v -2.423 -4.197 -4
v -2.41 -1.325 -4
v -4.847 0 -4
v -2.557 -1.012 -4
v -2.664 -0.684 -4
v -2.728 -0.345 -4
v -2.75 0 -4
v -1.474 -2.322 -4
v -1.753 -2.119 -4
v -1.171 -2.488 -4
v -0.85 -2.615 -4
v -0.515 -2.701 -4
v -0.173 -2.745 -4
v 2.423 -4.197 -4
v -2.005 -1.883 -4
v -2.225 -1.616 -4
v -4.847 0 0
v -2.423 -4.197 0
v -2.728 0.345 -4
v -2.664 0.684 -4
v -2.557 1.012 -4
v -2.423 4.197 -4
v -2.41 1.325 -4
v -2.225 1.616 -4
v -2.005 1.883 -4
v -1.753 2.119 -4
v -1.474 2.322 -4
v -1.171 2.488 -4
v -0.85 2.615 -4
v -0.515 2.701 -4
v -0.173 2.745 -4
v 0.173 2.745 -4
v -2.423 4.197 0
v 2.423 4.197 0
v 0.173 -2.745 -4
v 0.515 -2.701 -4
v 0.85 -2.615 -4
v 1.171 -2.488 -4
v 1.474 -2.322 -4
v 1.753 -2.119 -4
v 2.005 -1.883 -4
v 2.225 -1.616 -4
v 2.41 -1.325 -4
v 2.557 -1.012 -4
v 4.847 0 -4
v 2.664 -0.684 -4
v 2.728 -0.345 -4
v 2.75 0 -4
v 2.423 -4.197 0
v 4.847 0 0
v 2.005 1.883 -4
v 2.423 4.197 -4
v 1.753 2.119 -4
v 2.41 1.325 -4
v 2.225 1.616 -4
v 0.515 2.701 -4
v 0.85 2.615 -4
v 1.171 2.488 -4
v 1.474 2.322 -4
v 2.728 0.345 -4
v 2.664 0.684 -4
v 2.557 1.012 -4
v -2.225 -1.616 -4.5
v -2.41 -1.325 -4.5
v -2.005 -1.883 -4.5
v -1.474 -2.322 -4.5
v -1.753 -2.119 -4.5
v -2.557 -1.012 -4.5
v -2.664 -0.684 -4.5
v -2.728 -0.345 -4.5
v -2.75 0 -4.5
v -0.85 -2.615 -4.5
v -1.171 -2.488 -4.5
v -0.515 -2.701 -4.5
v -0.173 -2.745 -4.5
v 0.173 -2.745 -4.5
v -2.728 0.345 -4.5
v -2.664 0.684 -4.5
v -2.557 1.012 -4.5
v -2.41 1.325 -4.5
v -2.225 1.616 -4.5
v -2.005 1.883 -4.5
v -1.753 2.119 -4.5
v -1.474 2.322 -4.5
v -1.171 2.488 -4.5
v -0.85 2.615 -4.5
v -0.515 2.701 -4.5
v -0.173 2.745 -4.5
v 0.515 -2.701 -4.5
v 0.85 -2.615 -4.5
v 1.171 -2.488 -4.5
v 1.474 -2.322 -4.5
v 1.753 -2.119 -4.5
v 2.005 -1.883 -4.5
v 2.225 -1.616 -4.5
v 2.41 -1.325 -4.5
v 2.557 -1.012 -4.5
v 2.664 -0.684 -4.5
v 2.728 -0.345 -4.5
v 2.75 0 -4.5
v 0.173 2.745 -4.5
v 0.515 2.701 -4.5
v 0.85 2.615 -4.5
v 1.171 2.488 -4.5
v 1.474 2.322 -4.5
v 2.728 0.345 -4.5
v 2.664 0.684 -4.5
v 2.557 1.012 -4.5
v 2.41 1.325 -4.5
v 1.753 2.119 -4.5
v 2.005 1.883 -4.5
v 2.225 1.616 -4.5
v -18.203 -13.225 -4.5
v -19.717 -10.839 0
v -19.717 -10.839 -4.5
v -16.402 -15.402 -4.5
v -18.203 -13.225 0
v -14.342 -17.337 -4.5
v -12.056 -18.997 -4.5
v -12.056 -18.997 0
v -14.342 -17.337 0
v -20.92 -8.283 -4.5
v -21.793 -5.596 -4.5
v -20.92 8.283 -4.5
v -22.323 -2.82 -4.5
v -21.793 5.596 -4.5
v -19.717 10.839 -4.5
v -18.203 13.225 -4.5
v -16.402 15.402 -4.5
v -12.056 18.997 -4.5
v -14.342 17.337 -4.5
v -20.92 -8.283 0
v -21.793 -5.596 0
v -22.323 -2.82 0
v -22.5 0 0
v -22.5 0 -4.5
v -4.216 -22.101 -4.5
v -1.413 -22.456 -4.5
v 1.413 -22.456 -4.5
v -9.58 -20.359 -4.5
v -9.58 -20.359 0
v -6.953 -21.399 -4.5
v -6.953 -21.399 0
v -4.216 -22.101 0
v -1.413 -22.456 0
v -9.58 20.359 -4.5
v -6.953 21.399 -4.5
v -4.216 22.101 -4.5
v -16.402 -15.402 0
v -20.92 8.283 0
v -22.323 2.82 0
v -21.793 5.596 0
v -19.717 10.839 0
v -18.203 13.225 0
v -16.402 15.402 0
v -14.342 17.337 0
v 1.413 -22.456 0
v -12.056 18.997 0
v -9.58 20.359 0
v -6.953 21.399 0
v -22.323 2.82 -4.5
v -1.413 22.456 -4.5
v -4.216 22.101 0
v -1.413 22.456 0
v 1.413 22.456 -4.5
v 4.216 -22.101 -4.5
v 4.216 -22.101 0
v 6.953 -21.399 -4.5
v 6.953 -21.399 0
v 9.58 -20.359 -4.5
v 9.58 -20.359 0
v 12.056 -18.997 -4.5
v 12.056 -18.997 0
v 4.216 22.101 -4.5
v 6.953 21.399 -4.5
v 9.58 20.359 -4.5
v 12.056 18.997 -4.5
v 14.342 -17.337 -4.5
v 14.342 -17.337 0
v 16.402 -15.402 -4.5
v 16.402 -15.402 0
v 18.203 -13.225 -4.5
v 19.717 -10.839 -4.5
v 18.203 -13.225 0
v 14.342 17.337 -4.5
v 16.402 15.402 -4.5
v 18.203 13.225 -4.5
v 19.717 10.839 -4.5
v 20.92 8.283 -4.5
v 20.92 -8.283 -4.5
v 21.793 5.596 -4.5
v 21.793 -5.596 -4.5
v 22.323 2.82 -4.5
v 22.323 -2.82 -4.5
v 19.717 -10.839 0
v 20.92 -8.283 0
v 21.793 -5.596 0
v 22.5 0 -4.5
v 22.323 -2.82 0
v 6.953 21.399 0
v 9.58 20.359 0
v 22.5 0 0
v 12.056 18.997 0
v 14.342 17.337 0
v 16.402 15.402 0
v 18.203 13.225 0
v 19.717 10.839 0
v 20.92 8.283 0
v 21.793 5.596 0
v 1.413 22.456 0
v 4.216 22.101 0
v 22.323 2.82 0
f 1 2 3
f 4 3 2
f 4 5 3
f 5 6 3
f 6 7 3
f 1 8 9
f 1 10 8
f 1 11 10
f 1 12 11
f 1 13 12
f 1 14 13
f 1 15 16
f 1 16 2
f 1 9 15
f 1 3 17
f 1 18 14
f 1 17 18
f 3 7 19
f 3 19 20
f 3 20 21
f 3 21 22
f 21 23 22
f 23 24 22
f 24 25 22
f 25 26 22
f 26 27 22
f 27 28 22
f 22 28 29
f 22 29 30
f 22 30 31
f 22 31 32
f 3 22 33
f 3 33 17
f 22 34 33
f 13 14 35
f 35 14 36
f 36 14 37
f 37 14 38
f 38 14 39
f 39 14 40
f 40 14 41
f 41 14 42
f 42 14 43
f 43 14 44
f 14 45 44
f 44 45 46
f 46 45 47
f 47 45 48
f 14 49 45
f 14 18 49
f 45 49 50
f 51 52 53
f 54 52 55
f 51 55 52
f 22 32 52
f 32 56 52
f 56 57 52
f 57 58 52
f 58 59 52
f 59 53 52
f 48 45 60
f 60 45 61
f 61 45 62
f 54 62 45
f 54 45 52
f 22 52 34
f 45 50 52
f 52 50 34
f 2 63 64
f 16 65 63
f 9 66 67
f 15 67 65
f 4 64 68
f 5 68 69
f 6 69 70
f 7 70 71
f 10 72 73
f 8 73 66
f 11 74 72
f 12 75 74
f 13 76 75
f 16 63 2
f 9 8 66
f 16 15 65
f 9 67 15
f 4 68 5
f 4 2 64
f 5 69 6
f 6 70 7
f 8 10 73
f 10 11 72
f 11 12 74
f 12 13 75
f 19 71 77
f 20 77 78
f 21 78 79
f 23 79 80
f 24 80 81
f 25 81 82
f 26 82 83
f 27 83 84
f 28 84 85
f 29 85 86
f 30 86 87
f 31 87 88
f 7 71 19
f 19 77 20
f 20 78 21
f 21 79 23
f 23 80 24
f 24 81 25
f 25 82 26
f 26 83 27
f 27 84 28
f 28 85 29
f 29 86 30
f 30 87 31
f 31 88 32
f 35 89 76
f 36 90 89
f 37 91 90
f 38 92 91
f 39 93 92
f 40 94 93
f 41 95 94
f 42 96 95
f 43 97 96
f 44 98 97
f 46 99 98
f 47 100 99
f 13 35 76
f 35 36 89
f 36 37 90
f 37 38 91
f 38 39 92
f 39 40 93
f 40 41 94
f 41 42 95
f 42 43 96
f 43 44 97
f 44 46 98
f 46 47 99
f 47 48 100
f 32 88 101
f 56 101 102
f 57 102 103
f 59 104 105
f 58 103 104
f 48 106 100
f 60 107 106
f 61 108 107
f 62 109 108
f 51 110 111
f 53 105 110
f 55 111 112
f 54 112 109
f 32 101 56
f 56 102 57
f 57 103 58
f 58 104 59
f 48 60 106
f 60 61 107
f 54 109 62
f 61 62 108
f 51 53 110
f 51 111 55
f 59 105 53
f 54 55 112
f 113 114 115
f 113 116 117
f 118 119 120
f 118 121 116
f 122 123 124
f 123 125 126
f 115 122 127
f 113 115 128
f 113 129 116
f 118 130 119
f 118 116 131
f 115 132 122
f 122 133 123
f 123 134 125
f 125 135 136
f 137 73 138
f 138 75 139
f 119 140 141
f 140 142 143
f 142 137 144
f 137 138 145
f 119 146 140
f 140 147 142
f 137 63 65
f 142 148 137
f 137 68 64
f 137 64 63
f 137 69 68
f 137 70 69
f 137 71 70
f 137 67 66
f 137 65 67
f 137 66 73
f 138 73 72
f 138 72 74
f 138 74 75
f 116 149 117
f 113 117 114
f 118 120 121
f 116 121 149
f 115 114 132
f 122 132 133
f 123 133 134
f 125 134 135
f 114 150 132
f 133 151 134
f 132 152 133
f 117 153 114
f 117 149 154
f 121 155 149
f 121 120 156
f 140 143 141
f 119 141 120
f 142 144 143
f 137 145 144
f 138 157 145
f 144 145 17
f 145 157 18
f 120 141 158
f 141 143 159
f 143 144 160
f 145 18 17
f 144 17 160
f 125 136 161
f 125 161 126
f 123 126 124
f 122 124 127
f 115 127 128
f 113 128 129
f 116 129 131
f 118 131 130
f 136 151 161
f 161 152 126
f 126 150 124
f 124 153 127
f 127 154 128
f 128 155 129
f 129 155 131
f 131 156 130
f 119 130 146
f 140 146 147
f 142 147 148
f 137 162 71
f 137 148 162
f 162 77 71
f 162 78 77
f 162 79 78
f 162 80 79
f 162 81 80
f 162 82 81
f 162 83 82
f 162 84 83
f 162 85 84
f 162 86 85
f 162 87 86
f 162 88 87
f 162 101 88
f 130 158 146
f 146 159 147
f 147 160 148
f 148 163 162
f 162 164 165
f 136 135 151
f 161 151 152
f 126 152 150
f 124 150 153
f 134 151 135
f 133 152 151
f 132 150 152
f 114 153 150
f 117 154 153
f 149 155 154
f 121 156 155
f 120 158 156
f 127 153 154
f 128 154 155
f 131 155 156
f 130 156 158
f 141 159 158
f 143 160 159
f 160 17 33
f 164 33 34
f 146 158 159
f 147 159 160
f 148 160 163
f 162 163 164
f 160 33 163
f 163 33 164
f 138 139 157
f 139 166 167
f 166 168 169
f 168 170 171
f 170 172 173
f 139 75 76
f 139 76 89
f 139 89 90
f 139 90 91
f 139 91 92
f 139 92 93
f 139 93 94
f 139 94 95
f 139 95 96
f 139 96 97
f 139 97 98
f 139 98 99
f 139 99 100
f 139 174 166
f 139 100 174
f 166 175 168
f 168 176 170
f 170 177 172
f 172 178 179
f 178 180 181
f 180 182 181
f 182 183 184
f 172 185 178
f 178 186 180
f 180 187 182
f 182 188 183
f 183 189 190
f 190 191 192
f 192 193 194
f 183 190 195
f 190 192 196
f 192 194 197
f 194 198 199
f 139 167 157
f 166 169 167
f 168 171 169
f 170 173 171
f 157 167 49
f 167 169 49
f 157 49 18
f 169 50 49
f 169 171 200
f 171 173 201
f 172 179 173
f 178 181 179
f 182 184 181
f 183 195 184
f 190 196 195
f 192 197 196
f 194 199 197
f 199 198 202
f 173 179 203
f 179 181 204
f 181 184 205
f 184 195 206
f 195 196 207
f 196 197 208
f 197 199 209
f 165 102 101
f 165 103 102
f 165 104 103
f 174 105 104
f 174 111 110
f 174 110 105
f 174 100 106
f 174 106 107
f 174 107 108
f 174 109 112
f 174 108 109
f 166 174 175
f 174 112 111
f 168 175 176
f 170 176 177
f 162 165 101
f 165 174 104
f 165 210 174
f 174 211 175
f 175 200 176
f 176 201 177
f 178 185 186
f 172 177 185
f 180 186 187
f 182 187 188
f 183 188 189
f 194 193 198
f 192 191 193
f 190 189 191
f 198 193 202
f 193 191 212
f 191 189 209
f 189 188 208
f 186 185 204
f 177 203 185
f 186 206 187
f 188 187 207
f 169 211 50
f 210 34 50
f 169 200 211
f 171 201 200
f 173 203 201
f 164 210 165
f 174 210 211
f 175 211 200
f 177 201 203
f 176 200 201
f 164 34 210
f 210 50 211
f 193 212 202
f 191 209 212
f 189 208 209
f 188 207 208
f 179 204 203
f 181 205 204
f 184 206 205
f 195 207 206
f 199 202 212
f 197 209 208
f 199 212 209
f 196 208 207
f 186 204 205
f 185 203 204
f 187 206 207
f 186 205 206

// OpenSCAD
$fn = 50;

difference() {
	union() {
		translate(v = [0, 0, -4.5]) {
			cylinder(h = 4.5, r = 22.5);
		}
	}
	union() {
		translate(v = [0, 0, 0]) {
			rotate(a = [0, 0, 0]) {
				difference() {
					union() {
						translate(v = [0, 0, -4]) {
							linear_extrude(height = 4) {
								polygon(points = [[4.8468, 0.0], [2.4234000000000004, 4.197451927062417], [-2.423399999999999, 4.197451927062417], [-4.8468, 5.935618106107392e-16], [-2.423400000000002, -4.197451927062416], [2.423399999999997, -4.197451927062419]]);
							}
						}
					}
					union();
				}
			}
		}
		#translate(v = [0, 0, -100.0]) {
			cylinder(h = 200, r = 2.75);
		}
	}
}
